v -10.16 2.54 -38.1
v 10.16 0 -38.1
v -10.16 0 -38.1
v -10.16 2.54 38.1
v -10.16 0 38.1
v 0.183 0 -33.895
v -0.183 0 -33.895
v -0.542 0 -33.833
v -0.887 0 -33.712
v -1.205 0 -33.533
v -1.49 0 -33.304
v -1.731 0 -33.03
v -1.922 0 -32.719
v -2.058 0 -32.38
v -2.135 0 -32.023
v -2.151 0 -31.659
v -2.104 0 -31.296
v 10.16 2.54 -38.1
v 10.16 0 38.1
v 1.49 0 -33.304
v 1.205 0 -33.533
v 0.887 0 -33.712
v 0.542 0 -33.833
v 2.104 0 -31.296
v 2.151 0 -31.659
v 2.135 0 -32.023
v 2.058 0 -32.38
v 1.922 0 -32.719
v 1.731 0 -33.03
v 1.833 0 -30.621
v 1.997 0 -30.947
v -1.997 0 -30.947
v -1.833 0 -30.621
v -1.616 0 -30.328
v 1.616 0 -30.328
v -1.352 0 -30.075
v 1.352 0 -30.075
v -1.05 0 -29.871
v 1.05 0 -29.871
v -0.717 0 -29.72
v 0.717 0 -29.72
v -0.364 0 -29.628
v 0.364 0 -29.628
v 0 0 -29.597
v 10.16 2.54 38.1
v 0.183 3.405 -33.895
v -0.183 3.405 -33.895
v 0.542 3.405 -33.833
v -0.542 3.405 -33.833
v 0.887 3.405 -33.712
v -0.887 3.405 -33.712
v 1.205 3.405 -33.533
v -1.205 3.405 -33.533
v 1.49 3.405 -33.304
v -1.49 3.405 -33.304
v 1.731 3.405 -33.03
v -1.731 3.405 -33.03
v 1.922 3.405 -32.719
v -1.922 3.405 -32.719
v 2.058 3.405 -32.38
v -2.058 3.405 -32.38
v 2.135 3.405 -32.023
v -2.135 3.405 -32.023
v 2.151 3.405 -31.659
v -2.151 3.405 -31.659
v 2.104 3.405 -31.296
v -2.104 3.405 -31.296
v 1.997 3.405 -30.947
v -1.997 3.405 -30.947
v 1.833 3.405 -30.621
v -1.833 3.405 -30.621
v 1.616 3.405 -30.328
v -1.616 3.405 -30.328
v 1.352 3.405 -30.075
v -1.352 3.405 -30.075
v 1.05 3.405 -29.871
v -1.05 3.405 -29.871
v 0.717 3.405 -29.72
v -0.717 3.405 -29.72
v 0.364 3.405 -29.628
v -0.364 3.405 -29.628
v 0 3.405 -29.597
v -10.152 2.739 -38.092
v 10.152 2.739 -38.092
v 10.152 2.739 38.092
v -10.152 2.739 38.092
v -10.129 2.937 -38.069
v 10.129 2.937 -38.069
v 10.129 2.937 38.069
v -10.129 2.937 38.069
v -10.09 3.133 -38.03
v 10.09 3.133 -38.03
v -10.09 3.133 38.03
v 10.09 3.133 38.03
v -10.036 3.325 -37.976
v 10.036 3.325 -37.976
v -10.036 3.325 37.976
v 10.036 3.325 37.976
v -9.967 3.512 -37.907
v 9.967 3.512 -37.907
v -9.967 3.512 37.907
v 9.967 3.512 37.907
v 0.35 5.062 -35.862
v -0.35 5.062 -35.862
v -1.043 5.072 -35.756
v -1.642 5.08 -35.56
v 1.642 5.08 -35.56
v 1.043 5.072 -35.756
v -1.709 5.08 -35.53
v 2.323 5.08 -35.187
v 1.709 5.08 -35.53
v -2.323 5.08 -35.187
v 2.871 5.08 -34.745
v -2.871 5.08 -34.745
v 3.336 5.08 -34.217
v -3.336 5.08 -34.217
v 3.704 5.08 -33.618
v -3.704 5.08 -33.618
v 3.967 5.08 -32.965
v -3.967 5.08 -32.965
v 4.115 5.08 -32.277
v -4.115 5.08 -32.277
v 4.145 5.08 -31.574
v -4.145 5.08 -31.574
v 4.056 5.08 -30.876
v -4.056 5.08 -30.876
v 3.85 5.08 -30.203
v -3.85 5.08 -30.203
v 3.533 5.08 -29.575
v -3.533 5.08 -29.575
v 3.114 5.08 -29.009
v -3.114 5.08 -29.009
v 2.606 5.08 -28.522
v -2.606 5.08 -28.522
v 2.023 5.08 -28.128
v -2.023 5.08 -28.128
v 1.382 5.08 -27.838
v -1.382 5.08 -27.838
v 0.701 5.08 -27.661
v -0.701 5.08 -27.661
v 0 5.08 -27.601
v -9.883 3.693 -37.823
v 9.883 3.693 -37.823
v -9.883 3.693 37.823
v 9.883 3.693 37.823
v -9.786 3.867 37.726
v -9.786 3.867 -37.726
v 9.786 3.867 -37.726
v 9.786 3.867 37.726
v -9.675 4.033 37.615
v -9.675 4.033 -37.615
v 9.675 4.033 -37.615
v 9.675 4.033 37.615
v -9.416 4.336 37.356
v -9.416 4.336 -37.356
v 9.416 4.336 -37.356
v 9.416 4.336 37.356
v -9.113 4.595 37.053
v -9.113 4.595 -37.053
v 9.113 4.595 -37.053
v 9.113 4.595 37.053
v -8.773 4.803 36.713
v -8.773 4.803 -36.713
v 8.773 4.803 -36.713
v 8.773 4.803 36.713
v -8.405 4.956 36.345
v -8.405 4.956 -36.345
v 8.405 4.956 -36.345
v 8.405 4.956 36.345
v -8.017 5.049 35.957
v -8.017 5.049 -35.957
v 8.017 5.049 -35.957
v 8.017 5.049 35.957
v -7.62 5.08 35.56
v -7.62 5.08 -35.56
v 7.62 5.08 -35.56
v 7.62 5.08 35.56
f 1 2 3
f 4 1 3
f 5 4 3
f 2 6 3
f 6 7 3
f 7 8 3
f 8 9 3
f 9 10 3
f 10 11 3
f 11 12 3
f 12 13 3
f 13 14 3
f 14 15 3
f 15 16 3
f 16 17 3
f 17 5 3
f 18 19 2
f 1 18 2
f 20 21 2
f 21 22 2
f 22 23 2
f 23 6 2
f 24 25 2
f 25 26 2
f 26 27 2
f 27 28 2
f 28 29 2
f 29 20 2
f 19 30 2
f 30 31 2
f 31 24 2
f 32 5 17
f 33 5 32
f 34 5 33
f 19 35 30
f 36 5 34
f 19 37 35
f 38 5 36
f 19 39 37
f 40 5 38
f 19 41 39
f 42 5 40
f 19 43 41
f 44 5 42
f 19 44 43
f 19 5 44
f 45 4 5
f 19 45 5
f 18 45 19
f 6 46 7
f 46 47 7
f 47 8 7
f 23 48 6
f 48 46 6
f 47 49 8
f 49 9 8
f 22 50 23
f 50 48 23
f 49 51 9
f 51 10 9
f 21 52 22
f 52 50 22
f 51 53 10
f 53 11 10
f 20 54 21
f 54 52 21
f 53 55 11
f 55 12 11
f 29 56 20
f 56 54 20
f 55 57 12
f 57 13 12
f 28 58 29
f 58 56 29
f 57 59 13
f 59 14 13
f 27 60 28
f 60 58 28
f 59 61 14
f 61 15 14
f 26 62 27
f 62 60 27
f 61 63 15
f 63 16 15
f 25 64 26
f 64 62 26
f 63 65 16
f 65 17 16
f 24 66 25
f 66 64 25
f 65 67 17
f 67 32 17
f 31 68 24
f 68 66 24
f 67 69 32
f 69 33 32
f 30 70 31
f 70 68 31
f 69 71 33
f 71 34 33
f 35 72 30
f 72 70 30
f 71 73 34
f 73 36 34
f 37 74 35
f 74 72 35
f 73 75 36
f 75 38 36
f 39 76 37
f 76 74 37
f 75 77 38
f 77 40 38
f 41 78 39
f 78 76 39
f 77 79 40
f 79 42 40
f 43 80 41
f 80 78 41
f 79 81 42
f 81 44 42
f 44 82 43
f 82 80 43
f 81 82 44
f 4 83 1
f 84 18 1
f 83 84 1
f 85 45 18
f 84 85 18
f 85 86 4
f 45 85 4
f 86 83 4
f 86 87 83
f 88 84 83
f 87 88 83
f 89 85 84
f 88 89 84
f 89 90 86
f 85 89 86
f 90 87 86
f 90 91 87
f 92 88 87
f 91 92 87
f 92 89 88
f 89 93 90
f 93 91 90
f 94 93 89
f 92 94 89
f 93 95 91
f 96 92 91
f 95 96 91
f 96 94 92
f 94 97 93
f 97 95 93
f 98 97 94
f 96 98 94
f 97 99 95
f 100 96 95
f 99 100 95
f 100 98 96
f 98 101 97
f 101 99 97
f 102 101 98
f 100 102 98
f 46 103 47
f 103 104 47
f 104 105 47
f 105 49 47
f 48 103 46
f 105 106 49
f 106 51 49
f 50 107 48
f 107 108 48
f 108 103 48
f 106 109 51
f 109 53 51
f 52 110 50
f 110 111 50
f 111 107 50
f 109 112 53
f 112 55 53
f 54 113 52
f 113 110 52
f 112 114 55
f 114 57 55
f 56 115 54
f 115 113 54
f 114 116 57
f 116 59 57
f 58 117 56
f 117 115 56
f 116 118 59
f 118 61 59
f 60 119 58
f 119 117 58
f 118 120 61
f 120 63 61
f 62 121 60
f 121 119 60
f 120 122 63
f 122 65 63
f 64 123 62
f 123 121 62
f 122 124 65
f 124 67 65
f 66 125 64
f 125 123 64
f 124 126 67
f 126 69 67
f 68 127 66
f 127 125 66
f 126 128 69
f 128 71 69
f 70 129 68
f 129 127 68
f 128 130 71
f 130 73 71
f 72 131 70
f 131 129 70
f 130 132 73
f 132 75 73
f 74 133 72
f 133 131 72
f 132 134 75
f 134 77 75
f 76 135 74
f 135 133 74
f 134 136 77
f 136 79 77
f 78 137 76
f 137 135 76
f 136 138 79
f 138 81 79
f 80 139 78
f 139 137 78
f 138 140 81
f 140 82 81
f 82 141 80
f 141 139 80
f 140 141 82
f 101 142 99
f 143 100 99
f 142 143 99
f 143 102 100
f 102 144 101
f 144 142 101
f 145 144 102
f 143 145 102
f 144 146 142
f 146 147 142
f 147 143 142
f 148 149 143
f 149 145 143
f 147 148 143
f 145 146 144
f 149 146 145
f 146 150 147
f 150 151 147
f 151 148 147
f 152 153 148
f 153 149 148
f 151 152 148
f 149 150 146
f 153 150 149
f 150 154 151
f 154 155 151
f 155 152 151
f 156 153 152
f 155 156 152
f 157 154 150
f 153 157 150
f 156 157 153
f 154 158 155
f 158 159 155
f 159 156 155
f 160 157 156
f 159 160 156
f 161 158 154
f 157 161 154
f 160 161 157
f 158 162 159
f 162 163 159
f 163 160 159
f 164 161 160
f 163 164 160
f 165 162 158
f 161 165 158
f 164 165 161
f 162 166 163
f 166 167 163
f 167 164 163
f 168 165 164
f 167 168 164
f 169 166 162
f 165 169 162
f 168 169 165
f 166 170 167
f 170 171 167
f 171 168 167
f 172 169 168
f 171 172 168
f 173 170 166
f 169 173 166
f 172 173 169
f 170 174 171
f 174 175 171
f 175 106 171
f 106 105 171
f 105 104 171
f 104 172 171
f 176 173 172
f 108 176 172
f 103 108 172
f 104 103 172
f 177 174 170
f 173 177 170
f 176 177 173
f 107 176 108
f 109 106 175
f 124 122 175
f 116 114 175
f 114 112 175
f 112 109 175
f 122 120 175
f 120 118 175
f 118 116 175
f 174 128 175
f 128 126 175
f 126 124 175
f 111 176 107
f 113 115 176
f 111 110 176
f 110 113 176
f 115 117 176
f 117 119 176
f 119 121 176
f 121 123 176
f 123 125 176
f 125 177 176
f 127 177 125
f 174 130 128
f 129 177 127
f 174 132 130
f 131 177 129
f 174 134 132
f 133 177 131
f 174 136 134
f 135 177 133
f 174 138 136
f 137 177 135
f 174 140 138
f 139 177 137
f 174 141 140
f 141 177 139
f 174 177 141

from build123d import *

# Parameters (mm, degrees)
SKETCH1_W                                         = 20.32
SKETCH1_H                                         = 76.2
BOSS_EXTRUDE1_DEPTH                               = 5.08
CSK_FOR_6_FLAT_HEAD_MACHINE_SCREW_100_D           = 4.3053
CSK_FOR_6_FLAT_HEAD_MACHINE_SCREW_100_CSINK_D     = 8.297418
CSK_FOR_6_FLAT_HEAD_MACHINE_SCREW_100_CSINK_ANGLE = 100
FILLET1_R                                         = 2.54


with BuildPart() as part:
    # Sketch1 → Boss-Extrude1 (new body)
    with BuildSketch(Plane(origin=(0, 0, 0), x_dir=(1, 0, 0), z_dir=(0, 1, 0))):
        Rectangle(SKETCH1_W, SKETCH1_H)
    extrude(amount=BOSS_EXTRUDE1_DEPTH)

    # CSK for #6 Flat Head Machine Screw (100)1 (through all)
    with Locations(Plane(origin=(0, 5.08, 0), x_dir=(1, 0, 0), z_dir=(0, 1, 0))):
        with Locations((0, 31.75)):
            CounterSinkHole(CSK_FOR_6_FLAT_HEAD_MACHINE_SCREW_100_D / 2, CSK_FOR_6_FLAT_HEAD_MACHINE_SCREW_100_CSINK_D / 2, counter_sink_angle=CSK_FOR_6_FLAT_HEAD_MACHINE_SCREW_100_CSINK_ANGLE)

    # Fillet1
    # the kernel refuses this fillet: 2.54 mm, written as the material it takes off along each edge
    with BuildSketch(Plane(origin=(-10.16, 5.08, -44.45), x_dir=(1, 0, 0), z_dir=(0, 0, 1)), Plane(origin=(10.16, 5.08, 44.45), x_dir=(-1, 0, 0), z_dir=(0, 0, -1))) as fillet1_piece_1:
        with BuildLine():
            CenterArc((FILLET1_R, -FILLET1_R), FILLET1_R, 90, 90)
            Line((0, -FILLET1_R), (0, 0))
            Line((0, 0), (FILLET1_R, 0))
        make_face()
    extrude(amount=88.9, mode=Mode.SUBTRACT)
    with BuildSketch(Plane(origin=(-16.51, 5.08, 38.1), x_dir=(0, -1, 0), z_dir=(1, 0, 0))) as fillet1_piece_2:
        with BuildLine():
            CenterArc((FILLET1_R, FILLET1_R), FILLET1_R, 180, 90)
            Line((0, FILLET1_R), (0, 0))
            Line((0, 0), (FILLET1_R, 0))
        make_face()
    extrude(amount=33.02, mode=Mode.SUBTRACT)
    with BuildSketch(Plane(origin=(16.51, 5.08, -38.1), x_dir=(0, 0, 1), z_dir=(-1, 0, 0))) as fillet1_piece_3:
        with BuildLine():
            CenterArc((FILLET1_R, -FILLET1_R), FILLET1_R, 90, 90)
            Line((0, -FILLET1_R), (0, 0))
            Line((0, 0), (FILLET1_R, 0))
        make_face()
    extrude(amount=33.02, mode=Mode.SUBTRACT)


solid = part.part
